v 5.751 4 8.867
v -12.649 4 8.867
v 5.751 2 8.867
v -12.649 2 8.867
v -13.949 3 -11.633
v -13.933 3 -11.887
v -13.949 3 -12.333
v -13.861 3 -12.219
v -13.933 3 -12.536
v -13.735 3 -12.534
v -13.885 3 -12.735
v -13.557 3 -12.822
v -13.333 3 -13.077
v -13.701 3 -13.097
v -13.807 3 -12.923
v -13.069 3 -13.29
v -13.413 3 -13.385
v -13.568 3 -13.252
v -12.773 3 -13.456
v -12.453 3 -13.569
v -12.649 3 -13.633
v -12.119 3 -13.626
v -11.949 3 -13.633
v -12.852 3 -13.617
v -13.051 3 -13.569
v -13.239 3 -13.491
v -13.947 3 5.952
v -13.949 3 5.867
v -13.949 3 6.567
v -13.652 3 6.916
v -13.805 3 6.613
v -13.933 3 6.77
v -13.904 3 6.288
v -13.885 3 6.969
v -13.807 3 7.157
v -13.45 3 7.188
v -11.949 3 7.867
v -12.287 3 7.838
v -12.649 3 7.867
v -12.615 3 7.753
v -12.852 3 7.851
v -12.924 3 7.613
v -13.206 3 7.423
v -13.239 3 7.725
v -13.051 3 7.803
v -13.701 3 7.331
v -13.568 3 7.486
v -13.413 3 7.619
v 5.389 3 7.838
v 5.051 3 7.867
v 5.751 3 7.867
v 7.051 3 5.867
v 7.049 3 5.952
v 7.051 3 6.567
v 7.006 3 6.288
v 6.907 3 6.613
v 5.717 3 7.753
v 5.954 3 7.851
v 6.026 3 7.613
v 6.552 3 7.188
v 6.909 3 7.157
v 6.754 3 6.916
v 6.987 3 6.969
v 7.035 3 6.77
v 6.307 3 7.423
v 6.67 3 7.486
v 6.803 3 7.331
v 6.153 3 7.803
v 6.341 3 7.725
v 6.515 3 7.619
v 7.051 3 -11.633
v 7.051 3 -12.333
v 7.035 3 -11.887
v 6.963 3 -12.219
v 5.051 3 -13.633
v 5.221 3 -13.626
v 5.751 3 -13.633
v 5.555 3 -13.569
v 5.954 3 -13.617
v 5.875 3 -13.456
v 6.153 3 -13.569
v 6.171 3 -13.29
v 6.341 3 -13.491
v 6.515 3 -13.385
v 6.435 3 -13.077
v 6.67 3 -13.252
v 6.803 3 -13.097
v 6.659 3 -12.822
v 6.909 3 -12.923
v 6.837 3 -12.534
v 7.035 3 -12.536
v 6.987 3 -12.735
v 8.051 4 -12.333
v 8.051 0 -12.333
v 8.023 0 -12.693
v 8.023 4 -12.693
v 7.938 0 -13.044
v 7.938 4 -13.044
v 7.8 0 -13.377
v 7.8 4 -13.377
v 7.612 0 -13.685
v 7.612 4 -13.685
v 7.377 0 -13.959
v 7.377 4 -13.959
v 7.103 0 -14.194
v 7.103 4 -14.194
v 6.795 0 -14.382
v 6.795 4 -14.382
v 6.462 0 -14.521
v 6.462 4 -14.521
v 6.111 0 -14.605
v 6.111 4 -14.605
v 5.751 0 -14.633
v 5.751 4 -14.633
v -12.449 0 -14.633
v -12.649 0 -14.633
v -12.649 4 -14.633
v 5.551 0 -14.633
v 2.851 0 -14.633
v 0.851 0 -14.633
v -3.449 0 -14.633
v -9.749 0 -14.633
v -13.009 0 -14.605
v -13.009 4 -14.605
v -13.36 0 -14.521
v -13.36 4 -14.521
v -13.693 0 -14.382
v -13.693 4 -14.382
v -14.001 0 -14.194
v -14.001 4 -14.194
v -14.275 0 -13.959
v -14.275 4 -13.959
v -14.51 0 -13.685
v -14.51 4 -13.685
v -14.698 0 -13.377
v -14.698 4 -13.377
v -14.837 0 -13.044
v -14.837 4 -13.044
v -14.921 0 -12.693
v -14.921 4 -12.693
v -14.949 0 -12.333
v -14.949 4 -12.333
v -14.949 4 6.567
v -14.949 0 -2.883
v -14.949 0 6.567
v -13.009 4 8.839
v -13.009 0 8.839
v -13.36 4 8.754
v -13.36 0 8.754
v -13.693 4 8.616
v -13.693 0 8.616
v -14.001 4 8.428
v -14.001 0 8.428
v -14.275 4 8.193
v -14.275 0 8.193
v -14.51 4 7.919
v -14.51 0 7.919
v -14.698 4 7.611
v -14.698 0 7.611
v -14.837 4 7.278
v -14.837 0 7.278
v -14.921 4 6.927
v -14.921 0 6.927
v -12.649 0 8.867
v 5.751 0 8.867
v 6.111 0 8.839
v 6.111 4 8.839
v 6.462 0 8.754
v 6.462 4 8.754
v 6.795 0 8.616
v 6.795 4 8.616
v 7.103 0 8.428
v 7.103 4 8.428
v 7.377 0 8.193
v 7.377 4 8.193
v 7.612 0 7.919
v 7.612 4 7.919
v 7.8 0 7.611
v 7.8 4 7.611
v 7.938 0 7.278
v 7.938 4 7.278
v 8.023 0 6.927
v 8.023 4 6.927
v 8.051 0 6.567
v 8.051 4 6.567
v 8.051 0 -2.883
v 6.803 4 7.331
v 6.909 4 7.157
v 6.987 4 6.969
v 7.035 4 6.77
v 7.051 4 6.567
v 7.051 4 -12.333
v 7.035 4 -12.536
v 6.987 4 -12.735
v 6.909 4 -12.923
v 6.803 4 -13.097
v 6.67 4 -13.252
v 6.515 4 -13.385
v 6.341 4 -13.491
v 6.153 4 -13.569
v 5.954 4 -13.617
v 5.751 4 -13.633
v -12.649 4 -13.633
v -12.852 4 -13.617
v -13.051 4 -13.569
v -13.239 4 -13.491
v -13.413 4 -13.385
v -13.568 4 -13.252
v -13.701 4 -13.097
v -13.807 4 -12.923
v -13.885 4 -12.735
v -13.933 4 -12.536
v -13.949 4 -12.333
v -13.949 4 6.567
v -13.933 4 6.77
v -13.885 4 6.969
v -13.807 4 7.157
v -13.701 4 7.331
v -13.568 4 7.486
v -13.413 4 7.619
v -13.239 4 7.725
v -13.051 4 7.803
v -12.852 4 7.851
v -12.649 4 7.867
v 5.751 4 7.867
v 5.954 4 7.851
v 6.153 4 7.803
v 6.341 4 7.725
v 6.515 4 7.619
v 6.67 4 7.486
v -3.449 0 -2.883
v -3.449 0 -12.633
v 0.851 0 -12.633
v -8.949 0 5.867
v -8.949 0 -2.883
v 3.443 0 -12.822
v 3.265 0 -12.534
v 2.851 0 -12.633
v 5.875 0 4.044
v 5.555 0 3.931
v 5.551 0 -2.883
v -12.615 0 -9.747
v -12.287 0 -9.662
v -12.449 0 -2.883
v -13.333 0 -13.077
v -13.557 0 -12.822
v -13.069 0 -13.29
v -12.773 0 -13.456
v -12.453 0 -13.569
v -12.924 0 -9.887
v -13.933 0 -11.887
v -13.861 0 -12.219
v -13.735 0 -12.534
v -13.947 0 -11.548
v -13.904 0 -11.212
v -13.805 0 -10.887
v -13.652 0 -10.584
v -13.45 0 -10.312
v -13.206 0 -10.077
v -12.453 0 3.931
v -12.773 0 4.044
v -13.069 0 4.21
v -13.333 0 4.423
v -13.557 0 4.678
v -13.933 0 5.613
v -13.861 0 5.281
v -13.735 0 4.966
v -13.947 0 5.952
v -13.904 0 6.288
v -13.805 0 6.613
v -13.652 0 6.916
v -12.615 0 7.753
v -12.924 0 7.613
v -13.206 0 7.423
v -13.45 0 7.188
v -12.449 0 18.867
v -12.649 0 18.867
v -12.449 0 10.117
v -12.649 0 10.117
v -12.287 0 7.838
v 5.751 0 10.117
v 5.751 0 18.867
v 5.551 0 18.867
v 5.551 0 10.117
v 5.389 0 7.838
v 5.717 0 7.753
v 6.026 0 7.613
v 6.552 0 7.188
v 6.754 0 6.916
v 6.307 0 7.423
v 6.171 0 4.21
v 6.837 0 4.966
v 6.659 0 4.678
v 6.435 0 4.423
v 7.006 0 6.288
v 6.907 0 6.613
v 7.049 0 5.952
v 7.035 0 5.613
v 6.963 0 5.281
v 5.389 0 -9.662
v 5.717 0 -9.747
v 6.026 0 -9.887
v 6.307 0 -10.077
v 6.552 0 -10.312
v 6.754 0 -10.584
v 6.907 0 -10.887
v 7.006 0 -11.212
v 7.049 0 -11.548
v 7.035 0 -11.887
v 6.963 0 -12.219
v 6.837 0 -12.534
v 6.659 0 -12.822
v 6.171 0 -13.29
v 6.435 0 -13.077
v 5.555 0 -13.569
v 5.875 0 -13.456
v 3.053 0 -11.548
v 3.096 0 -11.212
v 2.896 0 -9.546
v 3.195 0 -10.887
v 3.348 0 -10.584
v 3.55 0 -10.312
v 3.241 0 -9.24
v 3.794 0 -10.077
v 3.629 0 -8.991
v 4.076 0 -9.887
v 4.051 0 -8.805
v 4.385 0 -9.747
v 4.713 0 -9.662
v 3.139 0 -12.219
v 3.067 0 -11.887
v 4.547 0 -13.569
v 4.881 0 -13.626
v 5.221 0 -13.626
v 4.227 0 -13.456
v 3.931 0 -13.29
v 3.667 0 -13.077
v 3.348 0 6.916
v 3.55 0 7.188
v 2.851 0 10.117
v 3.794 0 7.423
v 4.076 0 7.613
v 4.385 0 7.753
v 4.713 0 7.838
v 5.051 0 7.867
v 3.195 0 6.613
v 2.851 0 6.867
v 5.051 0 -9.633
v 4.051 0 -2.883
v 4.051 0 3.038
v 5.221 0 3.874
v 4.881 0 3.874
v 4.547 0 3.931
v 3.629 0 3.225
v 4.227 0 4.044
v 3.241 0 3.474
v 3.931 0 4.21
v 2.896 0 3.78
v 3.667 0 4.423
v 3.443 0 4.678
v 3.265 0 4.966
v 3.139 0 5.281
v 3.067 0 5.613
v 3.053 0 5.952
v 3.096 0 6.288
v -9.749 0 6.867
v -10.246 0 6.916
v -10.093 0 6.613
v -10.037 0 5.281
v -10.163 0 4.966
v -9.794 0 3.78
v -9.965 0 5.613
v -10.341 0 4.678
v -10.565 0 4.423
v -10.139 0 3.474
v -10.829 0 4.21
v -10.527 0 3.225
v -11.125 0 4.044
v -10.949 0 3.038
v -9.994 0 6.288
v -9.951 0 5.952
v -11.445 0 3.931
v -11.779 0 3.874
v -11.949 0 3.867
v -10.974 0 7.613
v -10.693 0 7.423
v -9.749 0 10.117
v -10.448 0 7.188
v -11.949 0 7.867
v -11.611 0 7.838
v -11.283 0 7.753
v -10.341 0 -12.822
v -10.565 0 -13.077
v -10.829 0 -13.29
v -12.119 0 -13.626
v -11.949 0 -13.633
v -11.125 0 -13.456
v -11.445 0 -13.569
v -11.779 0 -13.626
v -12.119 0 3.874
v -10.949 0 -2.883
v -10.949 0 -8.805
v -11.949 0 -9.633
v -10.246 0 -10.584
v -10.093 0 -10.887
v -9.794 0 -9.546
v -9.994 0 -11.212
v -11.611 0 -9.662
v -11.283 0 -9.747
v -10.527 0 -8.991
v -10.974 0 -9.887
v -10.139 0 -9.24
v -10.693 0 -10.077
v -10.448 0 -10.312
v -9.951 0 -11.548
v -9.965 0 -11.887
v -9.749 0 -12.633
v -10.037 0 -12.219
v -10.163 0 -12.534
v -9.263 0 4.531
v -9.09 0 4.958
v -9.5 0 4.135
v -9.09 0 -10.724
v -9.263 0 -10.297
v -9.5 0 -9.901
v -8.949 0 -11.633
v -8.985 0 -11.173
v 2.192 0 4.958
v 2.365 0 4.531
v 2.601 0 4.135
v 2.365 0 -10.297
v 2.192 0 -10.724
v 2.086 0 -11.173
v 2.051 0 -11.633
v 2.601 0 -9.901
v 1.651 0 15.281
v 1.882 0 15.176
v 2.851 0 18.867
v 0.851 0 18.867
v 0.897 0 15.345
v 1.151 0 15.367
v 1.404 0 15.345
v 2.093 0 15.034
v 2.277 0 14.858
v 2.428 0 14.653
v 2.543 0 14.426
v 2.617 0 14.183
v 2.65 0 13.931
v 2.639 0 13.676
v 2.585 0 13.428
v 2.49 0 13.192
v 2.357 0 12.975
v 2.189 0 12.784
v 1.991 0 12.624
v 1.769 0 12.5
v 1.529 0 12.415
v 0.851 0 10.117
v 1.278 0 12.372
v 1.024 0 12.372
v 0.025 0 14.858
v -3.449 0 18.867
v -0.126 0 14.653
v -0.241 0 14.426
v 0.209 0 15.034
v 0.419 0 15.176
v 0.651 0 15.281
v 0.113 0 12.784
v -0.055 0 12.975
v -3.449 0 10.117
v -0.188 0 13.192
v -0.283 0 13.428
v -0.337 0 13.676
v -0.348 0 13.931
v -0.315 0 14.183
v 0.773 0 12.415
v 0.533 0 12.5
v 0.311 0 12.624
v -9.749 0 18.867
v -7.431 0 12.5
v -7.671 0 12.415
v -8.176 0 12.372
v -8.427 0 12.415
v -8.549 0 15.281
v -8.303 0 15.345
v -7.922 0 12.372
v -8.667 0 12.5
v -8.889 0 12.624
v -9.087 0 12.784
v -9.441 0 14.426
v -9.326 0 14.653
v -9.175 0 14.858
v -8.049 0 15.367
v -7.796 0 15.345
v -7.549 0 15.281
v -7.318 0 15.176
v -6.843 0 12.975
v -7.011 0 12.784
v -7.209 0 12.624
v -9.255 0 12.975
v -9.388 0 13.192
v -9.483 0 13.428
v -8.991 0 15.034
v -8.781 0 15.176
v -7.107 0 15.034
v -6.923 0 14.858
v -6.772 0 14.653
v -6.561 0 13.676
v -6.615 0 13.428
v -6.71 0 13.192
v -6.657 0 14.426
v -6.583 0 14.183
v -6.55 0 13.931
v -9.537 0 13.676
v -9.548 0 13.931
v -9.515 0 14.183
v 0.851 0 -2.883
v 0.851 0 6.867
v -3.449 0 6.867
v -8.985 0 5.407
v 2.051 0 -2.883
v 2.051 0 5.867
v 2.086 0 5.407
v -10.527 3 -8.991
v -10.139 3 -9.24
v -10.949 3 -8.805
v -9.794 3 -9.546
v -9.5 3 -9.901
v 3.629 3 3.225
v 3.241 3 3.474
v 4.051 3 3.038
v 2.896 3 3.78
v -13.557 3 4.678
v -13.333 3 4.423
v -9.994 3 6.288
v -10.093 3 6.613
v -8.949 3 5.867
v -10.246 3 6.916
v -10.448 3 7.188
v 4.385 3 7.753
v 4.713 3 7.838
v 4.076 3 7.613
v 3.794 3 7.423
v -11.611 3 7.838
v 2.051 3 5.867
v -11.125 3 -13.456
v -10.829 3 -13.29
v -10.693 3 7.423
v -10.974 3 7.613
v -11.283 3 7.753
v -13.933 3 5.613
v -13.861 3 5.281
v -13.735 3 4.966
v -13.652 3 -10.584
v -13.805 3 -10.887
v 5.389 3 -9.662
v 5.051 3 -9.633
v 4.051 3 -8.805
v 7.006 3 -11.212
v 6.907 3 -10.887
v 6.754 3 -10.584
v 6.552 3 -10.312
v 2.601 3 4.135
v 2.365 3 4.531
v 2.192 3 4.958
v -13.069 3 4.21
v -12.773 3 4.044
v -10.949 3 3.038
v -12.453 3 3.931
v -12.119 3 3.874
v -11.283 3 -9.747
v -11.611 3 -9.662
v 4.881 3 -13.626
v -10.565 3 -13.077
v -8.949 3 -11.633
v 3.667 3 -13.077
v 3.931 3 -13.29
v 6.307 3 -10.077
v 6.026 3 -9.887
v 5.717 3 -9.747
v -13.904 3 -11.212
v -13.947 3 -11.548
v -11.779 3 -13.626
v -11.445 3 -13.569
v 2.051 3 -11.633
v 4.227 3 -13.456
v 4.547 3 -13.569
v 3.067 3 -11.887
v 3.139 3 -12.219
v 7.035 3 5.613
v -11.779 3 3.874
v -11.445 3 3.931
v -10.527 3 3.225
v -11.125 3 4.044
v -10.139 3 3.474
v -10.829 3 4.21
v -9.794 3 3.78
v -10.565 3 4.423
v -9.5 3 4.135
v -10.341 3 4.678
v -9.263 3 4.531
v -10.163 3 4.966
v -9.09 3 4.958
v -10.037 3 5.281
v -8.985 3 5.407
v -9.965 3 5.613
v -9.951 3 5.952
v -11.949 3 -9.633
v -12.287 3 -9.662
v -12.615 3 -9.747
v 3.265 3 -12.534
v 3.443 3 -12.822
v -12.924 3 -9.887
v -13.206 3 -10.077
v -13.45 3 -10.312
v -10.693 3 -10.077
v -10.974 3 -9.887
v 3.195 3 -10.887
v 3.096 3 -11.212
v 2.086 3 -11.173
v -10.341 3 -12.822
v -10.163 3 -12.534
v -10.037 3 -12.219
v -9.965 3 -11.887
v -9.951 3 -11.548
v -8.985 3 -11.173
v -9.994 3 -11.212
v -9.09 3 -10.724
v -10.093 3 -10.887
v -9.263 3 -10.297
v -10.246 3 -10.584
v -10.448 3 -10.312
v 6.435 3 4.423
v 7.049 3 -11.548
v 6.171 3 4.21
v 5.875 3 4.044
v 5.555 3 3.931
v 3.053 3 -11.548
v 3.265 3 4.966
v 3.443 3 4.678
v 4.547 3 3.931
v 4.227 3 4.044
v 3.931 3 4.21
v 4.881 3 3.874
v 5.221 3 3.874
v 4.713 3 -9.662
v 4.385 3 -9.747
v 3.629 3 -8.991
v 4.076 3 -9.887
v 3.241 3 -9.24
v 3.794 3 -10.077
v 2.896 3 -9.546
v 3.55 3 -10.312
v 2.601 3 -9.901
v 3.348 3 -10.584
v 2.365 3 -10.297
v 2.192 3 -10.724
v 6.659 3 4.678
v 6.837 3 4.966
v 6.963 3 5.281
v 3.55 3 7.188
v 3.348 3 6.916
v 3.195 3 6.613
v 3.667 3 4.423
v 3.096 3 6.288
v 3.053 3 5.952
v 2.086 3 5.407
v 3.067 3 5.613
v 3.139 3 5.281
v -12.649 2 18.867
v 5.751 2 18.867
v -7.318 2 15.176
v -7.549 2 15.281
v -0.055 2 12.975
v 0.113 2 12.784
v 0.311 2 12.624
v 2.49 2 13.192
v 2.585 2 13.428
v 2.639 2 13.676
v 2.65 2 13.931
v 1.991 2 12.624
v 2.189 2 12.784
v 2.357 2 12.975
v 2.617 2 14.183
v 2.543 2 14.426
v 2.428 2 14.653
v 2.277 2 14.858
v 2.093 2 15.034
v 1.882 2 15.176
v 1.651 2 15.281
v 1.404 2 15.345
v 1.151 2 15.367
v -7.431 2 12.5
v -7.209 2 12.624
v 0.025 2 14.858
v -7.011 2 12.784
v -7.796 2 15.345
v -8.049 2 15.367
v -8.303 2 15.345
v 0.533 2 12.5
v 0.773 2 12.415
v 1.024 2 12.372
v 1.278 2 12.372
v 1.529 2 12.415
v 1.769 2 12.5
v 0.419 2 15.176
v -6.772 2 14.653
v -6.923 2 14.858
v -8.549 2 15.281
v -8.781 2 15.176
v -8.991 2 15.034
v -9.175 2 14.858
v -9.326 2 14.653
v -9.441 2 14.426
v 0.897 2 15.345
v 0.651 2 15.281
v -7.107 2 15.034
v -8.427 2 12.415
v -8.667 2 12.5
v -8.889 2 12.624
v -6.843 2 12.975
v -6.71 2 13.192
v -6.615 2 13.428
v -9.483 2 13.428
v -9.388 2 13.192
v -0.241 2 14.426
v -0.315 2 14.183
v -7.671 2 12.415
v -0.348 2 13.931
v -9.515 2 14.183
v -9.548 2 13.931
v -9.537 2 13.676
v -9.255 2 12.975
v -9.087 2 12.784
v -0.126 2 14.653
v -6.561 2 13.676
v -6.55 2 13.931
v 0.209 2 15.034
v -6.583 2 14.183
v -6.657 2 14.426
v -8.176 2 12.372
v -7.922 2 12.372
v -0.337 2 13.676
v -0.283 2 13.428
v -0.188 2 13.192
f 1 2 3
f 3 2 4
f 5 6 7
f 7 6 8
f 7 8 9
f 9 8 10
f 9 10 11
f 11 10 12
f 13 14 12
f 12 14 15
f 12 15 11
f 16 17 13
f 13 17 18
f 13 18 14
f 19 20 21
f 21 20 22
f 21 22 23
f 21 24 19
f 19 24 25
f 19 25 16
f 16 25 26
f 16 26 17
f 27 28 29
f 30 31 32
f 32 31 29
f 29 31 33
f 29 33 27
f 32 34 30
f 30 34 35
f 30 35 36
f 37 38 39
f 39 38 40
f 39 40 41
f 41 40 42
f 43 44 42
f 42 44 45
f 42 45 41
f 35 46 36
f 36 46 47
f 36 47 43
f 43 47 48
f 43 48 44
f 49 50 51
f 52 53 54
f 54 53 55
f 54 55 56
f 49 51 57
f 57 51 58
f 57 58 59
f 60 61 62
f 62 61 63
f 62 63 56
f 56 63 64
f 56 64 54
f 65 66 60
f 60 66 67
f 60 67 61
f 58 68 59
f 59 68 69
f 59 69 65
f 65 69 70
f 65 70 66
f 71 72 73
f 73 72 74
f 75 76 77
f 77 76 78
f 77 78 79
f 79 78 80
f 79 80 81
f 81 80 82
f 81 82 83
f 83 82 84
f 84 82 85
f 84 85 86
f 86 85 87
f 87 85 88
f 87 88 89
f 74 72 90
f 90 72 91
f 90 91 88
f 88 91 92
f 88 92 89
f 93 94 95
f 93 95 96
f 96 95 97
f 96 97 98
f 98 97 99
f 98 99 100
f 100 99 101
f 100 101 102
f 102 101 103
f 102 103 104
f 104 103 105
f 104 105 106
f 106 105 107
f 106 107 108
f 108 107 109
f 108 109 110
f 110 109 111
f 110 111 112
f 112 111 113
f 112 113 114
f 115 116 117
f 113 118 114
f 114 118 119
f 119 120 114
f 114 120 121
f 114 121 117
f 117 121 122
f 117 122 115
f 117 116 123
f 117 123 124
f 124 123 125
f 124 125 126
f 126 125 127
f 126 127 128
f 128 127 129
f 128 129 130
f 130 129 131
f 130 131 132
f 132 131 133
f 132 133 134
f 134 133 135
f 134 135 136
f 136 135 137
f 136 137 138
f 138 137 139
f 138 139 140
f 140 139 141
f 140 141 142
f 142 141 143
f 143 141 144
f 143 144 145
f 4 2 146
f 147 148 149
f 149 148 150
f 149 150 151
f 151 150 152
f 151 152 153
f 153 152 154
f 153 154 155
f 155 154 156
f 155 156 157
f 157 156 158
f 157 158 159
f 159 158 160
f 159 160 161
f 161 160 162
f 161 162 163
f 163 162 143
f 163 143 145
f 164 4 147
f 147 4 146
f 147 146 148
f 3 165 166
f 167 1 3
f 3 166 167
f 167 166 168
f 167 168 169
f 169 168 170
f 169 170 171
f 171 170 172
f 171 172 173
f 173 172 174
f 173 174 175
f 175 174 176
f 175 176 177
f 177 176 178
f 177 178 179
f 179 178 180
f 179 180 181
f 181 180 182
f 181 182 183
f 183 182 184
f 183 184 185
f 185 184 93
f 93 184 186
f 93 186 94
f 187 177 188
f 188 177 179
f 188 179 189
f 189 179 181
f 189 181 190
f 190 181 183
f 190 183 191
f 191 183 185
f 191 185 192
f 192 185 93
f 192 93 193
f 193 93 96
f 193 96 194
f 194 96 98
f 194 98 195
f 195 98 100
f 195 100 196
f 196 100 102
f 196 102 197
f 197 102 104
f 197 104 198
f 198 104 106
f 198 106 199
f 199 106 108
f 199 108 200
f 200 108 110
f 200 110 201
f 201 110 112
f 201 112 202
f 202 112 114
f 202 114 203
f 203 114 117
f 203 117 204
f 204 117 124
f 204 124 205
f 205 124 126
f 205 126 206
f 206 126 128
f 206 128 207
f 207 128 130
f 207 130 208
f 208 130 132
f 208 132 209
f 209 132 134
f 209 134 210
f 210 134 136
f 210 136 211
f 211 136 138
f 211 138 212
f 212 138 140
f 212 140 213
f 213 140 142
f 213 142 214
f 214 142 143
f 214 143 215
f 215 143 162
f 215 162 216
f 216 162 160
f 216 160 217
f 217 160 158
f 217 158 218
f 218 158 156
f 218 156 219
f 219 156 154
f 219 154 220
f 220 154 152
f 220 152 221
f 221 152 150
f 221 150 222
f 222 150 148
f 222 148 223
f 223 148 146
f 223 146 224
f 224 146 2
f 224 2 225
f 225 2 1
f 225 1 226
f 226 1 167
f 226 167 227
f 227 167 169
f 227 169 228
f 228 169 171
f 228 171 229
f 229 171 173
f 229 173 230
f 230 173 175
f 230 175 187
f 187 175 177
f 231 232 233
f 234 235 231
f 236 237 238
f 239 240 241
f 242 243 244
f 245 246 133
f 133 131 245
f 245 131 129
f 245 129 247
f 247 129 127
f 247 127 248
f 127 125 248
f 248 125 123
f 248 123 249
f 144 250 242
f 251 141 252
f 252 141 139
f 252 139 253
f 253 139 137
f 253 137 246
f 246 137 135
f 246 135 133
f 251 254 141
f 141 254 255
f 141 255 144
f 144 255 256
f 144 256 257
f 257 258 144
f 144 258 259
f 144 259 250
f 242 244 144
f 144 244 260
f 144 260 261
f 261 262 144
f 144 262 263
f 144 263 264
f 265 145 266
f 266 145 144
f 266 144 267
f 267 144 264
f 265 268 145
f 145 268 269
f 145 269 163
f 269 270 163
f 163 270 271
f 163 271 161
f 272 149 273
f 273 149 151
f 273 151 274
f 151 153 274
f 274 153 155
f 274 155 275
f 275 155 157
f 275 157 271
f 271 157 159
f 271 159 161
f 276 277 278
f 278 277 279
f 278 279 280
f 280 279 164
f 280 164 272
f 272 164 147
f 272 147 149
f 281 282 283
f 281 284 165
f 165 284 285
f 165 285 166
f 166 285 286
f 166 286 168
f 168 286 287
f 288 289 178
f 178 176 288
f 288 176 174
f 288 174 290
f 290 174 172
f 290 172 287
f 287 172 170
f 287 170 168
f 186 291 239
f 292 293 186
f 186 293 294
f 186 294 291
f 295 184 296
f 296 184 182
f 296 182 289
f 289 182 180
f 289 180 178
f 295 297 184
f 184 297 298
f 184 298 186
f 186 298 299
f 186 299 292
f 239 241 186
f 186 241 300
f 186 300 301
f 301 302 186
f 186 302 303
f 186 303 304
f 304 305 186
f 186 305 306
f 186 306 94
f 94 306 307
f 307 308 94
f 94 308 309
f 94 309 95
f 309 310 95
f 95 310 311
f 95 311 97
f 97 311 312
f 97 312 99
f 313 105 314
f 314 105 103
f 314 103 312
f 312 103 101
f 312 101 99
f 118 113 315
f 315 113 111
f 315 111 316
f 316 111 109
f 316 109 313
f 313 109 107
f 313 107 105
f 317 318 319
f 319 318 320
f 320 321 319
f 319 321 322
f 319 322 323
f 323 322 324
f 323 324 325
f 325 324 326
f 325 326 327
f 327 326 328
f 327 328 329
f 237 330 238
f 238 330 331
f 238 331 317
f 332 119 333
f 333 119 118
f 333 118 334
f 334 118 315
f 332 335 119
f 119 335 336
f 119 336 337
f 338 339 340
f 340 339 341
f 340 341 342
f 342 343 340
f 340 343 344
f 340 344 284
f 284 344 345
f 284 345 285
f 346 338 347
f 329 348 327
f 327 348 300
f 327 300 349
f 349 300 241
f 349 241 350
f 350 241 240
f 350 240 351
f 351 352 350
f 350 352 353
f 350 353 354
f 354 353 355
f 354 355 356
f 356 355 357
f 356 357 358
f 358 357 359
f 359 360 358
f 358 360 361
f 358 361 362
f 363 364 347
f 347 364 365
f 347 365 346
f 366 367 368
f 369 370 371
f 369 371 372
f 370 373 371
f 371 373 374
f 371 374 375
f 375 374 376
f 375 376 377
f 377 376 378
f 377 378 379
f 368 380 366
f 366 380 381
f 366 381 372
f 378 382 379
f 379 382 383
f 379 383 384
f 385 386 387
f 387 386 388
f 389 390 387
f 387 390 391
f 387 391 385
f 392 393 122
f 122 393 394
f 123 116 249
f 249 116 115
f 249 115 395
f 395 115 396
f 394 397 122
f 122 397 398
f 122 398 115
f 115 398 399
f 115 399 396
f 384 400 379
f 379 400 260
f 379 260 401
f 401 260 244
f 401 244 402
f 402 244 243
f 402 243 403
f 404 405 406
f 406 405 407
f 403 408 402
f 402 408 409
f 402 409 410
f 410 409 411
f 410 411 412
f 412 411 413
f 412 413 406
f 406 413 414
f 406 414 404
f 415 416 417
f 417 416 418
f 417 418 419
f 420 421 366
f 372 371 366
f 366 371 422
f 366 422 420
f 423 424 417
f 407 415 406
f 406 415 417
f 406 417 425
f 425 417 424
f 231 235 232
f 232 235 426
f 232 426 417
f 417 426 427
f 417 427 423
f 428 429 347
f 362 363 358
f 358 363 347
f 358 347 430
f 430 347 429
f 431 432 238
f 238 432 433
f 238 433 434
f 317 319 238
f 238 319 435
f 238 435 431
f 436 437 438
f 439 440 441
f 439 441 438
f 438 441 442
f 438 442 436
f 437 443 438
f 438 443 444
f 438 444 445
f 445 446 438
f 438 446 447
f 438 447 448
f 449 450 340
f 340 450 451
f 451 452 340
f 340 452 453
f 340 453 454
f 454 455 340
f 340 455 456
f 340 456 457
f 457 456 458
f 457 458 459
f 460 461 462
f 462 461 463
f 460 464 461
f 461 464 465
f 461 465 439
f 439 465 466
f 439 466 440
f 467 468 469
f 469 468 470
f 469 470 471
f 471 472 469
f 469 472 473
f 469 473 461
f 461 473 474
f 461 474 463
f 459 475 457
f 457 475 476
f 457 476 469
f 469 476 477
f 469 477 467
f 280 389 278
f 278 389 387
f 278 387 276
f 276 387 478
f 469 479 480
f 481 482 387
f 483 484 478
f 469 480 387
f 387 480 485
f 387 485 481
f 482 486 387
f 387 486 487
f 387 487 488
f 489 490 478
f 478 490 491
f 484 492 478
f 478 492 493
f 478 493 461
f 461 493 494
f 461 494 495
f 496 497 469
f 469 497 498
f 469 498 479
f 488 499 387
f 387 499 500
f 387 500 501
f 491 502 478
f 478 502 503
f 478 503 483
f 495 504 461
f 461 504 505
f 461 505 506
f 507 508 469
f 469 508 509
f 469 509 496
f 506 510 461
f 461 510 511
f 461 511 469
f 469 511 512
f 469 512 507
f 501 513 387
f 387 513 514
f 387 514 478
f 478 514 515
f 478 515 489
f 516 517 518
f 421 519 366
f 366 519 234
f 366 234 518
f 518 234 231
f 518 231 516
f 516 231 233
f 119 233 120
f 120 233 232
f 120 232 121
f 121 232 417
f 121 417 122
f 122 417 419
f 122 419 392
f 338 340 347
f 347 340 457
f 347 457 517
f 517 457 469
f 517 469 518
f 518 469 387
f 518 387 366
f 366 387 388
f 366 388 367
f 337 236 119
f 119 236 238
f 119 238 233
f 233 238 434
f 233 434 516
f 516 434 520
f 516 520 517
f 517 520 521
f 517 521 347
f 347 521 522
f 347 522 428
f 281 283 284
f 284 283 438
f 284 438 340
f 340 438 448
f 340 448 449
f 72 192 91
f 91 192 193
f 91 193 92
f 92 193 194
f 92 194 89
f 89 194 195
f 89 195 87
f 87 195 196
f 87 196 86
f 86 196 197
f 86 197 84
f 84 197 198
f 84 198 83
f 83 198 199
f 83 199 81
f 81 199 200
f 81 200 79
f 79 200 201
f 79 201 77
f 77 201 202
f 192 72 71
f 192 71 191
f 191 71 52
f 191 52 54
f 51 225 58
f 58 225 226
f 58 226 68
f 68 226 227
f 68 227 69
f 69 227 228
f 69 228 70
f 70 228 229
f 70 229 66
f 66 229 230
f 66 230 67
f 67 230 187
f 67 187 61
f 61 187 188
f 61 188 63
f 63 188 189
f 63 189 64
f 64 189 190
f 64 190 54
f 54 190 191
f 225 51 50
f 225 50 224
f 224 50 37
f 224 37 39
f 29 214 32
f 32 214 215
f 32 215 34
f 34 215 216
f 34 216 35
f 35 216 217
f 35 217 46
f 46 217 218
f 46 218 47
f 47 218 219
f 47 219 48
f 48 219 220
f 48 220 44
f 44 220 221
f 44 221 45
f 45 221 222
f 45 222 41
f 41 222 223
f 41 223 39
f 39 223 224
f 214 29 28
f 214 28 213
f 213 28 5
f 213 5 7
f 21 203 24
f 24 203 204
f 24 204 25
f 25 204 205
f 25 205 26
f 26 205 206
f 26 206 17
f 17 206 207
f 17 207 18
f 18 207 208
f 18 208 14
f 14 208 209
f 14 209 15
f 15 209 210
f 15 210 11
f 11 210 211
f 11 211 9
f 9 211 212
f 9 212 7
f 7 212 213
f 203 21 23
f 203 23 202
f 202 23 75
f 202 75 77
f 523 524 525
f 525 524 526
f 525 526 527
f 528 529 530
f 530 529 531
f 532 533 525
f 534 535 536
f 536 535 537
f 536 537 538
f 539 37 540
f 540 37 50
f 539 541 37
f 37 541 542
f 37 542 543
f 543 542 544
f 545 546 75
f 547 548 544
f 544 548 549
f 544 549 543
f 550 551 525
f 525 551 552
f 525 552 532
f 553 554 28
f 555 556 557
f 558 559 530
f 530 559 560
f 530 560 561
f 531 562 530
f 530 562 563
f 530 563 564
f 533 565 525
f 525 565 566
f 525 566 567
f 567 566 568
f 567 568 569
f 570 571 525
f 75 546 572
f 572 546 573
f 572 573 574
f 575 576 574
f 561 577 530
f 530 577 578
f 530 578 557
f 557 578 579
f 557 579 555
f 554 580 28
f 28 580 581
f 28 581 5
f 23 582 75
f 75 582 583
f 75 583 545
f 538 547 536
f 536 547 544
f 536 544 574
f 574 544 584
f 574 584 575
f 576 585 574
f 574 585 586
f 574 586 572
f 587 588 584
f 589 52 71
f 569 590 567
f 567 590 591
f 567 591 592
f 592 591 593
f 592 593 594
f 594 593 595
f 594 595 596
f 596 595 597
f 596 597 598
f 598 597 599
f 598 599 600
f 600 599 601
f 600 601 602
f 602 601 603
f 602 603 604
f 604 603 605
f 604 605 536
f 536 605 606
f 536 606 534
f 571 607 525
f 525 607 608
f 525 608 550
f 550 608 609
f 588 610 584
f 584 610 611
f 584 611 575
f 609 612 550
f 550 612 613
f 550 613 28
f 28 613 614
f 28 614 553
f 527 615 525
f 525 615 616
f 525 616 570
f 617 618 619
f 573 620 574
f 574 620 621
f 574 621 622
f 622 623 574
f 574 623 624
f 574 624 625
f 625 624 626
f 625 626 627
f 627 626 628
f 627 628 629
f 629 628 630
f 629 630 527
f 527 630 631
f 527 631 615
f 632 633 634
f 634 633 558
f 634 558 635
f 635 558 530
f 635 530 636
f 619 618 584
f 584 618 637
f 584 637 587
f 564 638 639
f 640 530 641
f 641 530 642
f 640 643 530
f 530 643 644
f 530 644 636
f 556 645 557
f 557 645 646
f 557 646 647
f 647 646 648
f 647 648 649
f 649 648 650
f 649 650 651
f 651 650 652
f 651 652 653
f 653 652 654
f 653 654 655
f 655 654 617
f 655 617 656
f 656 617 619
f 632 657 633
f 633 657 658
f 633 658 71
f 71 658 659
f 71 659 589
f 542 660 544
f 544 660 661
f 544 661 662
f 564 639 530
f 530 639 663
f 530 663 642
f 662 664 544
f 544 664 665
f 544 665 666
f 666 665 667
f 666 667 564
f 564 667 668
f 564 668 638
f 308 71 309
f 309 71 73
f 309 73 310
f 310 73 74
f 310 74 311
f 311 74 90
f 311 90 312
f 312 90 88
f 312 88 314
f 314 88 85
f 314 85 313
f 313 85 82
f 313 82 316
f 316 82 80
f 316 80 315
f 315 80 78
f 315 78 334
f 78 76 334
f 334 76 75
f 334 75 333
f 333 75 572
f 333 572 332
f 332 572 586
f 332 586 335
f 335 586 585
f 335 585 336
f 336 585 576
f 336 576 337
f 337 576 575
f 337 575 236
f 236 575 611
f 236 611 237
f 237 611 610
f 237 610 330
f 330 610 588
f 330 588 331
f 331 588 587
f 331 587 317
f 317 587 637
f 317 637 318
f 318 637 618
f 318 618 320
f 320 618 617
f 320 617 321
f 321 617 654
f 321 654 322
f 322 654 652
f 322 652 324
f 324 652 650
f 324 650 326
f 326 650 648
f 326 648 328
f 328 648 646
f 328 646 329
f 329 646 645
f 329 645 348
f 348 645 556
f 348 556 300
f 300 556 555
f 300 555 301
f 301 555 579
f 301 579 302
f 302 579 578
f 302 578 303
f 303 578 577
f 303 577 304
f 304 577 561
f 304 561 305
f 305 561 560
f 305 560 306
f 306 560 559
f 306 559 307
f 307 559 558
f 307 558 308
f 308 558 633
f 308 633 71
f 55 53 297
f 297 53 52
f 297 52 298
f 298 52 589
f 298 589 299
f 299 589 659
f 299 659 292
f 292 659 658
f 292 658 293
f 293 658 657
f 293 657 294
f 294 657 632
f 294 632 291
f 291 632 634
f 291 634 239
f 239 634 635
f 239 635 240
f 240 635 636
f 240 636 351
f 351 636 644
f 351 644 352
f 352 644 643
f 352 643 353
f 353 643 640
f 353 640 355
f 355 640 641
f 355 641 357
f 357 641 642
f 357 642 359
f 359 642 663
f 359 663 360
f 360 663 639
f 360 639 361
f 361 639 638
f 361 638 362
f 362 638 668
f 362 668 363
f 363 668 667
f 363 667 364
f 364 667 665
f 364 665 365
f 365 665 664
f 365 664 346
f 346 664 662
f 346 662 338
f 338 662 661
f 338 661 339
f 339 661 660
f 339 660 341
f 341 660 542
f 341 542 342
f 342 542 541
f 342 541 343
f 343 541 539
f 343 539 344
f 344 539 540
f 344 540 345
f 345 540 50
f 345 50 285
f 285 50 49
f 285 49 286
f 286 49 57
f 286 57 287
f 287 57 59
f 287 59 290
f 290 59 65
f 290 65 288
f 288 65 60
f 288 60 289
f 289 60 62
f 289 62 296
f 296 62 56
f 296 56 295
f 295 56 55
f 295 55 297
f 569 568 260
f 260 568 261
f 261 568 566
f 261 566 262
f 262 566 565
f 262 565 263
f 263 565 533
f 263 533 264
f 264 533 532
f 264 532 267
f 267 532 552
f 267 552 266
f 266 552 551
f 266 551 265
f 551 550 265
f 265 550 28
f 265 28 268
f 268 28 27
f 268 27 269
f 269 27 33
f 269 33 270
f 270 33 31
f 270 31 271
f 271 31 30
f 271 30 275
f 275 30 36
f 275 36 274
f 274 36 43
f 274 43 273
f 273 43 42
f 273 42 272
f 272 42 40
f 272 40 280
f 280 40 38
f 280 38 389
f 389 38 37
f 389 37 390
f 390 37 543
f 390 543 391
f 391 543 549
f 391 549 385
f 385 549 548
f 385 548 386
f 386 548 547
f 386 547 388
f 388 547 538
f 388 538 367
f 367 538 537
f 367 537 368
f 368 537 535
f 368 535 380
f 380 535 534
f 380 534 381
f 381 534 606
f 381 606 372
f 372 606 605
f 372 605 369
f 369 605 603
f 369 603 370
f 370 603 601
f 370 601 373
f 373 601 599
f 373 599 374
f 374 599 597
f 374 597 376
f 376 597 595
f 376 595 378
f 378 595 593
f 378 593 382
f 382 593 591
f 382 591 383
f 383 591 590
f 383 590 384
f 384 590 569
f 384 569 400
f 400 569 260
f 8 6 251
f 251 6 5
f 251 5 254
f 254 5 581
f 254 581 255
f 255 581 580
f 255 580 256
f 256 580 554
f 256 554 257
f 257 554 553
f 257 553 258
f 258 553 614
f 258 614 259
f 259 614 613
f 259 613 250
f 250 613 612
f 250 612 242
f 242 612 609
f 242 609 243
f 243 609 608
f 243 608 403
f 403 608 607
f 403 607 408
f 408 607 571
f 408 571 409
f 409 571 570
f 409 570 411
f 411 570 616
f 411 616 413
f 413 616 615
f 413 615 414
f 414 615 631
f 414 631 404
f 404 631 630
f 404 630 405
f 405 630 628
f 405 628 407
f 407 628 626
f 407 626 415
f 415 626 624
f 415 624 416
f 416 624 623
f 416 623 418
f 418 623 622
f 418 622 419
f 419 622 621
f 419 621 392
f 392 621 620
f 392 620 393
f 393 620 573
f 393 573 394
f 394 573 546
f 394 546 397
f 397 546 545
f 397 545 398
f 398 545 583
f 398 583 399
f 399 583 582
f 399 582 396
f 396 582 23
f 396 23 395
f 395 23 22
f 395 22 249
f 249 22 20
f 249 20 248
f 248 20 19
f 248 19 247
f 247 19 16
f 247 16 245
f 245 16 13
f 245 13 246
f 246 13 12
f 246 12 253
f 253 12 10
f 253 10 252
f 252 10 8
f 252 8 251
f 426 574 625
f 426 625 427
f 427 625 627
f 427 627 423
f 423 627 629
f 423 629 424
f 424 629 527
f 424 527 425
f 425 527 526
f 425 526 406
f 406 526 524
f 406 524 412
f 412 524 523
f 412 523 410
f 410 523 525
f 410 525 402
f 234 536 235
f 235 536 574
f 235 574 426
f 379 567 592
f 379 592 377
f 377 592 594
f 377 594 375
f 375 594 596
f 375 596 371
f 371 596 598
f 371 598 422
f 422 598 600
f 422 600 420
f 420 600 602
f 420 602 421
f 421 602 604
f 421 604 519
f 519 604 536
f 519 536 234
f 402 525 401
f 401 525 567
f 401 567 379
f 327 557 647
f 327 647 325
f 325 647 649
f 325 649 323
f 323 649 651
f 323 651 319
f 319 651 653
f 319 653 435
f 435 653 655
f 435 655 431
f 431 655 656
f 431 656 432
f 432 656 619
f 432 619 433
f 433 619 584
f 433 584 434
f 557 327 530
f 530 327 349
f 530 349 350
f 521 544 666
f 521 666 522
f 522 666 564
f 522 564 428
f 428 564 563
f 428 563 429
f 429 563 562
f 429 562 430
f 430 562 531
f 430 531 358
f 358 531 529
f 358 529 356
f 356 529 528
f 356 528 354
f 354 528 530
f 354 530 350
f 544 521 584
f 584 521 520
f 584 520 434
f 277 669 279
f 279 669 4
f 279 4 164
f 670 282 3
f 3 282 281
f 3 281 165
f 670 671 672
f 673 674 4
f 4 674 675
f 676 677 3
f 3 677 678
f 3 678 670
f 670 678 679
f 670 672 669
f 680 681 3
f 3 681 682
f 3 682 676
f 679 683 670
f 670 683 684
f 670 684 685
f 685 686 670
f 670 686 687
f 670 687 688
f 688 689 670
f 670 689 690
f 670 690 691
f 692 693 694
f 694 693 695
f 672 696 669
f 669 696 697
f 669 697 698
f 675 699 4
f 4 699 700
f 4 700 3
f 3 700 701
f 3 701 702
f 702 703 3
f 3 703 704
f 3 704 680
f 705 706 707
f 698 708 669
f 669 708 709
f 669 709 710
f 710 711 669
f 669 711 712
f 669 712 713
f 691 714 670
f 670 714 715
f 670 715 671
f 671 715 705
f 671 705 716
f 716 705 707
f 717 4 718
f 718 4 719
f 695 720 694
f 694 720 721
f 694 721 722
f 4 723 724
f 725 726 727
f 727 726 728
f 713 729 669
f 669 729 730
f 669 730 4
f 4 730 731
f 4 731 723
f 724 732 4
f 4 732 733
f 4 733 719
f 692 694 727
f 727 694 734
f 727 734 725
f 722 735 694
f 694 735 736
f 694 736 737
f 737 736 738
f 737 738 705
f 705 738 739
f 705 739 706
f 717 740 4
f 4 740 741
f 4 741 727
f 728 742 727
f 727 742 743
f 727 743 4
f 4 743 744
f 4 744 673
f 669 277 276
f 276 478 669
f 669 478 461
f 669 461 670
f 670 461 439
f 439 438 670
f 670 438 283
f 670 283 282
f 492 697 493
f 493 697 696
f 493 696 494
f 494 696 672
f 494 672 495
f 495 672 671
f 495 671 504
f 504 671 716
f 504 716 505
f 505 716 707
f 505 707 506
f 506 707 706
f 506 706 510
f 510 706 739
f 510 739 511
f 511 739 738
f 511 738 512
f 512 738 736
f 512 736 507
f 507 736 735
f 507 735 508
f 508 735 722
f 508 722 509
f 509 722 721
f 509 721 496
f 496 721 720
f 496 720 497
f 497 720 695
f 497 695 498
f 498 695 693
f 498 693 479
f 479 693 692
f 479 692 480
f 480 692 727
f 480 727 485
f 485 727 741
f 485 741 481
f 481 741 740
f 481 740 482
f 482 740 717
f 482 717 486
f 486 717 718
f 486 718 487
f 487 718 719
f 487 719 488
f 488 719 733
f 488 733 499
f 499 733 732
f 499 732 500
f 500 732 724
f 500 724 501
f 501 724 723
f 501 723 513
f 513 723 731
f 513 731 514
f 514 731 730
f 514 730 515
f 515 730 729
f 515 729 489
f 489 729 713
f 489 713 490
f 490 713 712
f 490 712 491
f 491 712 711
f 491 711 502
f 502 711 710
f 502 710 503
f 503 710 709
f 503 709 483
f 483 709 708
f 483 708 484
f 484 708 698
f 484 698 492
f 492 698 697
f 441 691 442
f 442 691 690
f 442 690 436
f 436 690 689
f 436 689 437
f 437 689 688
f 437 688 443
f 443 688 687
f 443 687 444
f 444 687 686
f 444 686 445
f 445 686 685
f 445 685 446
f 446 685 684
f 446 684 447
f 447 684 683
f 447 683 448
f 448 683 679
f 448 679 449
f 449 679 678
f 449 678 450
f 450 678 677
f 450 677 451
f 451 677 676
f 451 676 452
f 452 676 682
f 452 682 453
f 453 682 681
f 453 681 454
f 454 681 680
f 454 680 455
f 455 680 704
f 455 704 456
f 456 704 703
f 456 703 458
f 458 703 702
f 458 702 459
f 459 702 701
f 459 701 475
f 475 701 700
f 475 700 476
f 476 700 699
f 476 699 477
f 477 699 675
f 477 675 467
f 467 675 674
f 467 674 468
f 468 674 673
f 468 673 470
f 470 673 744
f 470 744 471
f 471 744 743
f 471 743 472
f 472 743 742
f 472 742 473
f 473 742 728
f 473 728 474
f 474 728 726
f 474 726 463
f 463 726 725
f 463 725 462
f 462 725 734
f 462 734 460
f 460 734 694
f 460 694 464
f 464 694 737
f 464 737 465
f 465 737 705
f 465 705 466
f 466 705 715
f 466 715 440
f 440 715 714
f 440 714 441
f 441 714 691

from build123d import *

# Parameters (mm, degrees)
BOSS_EXTRUDE1_DEPTH = 4
CUT_EXTRUDE2_DEPTH  = 1
SKETCH5_R           = 2
CUT_EXTRUDE3_DEPTH  = 22.132971525
CUT_EXTRUDE4_DEPTH  = 22.132971525
SKETCH7_W           = 18.4
SKETCH7_H           = 2
BOSS_EXTRUDE2_DEPTH = 10
SKETCH8_R           = 1.5
CUT_EXTRUDE5_DEPTH  = 25.154392176


with BuildPart() as part:
    # Sketch1 → Boss-Extrude1 (new body)
    with BuildSketch(Plane(origin=(0, 0, 0), x_dir=(1, 0, 0), z_dir=(0, 1, 0))):
        with BuildLine():
            Line((-12.649074074, 14.633101852), (5.750925926, 14.633101852))
            ThreePointArc((5.750925926, 14.633101852), (7.377271523, 13.959447449), (8.050925926, 12.333101852))
            Line((8.050925926, 12.333101852), (8.050925926, -6.566898148))
            ThreePointArc((8.050925926, -6.566898148), (7.377271523, -8.193243745), (5.750925926, -8.866898148))
            Line((5.750925926, -8.866898148), (-12.649074074, -8.866898148))
            ThreePointArc((-12.649074074, -8.866898148), (-14.275419671, -8.193243745), (-14.949074074, -6.566898148))
            Line((-14.949074074, -6.566898148), (-14.949074074, 12.333101852))
            ThreePointArc((-14.949074074, 12.333101852), (-14.275419671, 13.959447449), (-12.649074074, 14.633101852))
        make_face()
    extrude(amount=BOSS_EXTRUDE1_DEPTH)

    # Sketch2 → Cut-Extrude2 (cut)
    with BuildSketch(Plane(origin=(0, 4, 0), x_dir=(1, 0, 0), z_dir=(0, 1, 0))):
        with BuildLine():
            Line((5.750925926, 13.633101852), (-12.649074074, 13.633101852))
            ThreePointArc((-12.649074074, 13.633101852), (-13.56831289, 13.252340667), (-13.949074074, 12.333101852))
            Line((-13.949074074, 12.333101852), (-13.949074074, -6.566898148))
            ThreePointArc((-13.949074074, -6.566898148), (-13.56831289, -7.486136964), (-12.649074074, -7.866898148))
            Line((-12.649074074, -7.866898148), (5.750925926, -7.866898148))
            ThreePointArc((5.750925926, -7.866898148), (6.670164741, -7.486136964), (7.050925926, -6.566898148))
            Line((7.050925926, -6.566898148), (7.050925926, 12.333101852))
            ThreePointArc((7.050925926, 12.333101852), (6.670164741, 13.252340667), (5.750925926, 13.633101852))
        make_face()
    extrude(amount=-CUT_EXTRUDE2_DEPTH, mode=Mode.SUBTRACT)

    # Sketch5 → Cut-Extrude3 (cut, through all)
    with BuildSketch(Plane(origin=(0, 3, 0), x_dir=(1, 0, 0), z_dir=(0, 1, 0))):
        with Locations(Location((5.050925926, 11.633101852, 0), (0, 0, 270))):
            Circle(SKETCH5_R)
        with Locations(Location((5.050925926, -5.866898148, 0), (0, 0, 270))):
            Circle(SKETCH5_R)
        with Locations(Location((-11.949074074, -5.866898148, 0), (0, 0, 270))):
            Circle(SKETCH5_R)
        with Locations(Location((-11.949074074, 11.633101852, 0), (0, 0, 90))):
            Circle(SKETCH5_R)
    extrude(amount=-CUT_EXTRUDE3_DEPTH, mode=Mode.SUBTRACT)

    # Sketch6 → Cut-Extrude4 (cut, through all)
    with BuildSketch(Plane(origin=(0, 3, 0), x_dir=(1, 0, 0), z_dir=(0, 1, 0))):
        with BuildLine():
            Line((4.050925926, -3.038471023), (4.050925926, 8.804674727))
            ThreePointArc((4.050925926, 8.804674727), (2.601436183, 9.901051044), (2.050925926, 11.633101852))
            Line((2.050925926, 11.633101852), (2.050925926, -5.866898148))
            ThreePointArc((2.050925926, -5.866898148), (2.601436183, -4.134847341), (4.050925926, -3.038471023))
        make_face()
        with BuildLine():
            Line((-10.949074074, 8.804674727), (-10.949074074, -3.038471023))
            ThreePointArc((-10.949074074, -3.038471023), (-9.499584331, -4.134847341), (-8.949074074, -5.866898148))
            Line((-8.949074074, -5.866898148), (-8.949074074, 11.633101852))
            ThreePointArc((-8.949074074, 11.633101852), (-9.499584331, 9.901051044), (-10.949074074, 8.804674727))
        make_face()
    extrude(amount=-CUT_EXTRUDE4_DEPTH, mode=Mode.SUBTRACT)

    # Sketch7 → Boss-Extrude2 (add)
    with BuildSketch(Plane.XY.offset(8.866898148)):
        with Locations((-3.449074074, 1)):
            Rectangle(SKETCH7_W, SKETCH7_H)
    extrude(amount=BOSS_EXTRUDE2_DEPTH)

    # Sketch8 → Cut-Extrude5 (cut, through all)
    with BuildSketch(Plane(origin=(0, 2, 0), x_dir=(1, 0, 0), z_dir=(0, 1, 0))):
        with Locations(Location((1.150925926, -13.866898148, 0), (0, 0, 270))):
            Circle(SKETCH8_R)
        with Locations(Location((-8.049074074, -13.866898148, 0), (0, 0, 270))):
            Circle(SKETCH8_R)
    extrude(amount=-CUT_EXTRUDE5_DEPTH, mode=Mode.SUBTRACT)


solid = part.part
